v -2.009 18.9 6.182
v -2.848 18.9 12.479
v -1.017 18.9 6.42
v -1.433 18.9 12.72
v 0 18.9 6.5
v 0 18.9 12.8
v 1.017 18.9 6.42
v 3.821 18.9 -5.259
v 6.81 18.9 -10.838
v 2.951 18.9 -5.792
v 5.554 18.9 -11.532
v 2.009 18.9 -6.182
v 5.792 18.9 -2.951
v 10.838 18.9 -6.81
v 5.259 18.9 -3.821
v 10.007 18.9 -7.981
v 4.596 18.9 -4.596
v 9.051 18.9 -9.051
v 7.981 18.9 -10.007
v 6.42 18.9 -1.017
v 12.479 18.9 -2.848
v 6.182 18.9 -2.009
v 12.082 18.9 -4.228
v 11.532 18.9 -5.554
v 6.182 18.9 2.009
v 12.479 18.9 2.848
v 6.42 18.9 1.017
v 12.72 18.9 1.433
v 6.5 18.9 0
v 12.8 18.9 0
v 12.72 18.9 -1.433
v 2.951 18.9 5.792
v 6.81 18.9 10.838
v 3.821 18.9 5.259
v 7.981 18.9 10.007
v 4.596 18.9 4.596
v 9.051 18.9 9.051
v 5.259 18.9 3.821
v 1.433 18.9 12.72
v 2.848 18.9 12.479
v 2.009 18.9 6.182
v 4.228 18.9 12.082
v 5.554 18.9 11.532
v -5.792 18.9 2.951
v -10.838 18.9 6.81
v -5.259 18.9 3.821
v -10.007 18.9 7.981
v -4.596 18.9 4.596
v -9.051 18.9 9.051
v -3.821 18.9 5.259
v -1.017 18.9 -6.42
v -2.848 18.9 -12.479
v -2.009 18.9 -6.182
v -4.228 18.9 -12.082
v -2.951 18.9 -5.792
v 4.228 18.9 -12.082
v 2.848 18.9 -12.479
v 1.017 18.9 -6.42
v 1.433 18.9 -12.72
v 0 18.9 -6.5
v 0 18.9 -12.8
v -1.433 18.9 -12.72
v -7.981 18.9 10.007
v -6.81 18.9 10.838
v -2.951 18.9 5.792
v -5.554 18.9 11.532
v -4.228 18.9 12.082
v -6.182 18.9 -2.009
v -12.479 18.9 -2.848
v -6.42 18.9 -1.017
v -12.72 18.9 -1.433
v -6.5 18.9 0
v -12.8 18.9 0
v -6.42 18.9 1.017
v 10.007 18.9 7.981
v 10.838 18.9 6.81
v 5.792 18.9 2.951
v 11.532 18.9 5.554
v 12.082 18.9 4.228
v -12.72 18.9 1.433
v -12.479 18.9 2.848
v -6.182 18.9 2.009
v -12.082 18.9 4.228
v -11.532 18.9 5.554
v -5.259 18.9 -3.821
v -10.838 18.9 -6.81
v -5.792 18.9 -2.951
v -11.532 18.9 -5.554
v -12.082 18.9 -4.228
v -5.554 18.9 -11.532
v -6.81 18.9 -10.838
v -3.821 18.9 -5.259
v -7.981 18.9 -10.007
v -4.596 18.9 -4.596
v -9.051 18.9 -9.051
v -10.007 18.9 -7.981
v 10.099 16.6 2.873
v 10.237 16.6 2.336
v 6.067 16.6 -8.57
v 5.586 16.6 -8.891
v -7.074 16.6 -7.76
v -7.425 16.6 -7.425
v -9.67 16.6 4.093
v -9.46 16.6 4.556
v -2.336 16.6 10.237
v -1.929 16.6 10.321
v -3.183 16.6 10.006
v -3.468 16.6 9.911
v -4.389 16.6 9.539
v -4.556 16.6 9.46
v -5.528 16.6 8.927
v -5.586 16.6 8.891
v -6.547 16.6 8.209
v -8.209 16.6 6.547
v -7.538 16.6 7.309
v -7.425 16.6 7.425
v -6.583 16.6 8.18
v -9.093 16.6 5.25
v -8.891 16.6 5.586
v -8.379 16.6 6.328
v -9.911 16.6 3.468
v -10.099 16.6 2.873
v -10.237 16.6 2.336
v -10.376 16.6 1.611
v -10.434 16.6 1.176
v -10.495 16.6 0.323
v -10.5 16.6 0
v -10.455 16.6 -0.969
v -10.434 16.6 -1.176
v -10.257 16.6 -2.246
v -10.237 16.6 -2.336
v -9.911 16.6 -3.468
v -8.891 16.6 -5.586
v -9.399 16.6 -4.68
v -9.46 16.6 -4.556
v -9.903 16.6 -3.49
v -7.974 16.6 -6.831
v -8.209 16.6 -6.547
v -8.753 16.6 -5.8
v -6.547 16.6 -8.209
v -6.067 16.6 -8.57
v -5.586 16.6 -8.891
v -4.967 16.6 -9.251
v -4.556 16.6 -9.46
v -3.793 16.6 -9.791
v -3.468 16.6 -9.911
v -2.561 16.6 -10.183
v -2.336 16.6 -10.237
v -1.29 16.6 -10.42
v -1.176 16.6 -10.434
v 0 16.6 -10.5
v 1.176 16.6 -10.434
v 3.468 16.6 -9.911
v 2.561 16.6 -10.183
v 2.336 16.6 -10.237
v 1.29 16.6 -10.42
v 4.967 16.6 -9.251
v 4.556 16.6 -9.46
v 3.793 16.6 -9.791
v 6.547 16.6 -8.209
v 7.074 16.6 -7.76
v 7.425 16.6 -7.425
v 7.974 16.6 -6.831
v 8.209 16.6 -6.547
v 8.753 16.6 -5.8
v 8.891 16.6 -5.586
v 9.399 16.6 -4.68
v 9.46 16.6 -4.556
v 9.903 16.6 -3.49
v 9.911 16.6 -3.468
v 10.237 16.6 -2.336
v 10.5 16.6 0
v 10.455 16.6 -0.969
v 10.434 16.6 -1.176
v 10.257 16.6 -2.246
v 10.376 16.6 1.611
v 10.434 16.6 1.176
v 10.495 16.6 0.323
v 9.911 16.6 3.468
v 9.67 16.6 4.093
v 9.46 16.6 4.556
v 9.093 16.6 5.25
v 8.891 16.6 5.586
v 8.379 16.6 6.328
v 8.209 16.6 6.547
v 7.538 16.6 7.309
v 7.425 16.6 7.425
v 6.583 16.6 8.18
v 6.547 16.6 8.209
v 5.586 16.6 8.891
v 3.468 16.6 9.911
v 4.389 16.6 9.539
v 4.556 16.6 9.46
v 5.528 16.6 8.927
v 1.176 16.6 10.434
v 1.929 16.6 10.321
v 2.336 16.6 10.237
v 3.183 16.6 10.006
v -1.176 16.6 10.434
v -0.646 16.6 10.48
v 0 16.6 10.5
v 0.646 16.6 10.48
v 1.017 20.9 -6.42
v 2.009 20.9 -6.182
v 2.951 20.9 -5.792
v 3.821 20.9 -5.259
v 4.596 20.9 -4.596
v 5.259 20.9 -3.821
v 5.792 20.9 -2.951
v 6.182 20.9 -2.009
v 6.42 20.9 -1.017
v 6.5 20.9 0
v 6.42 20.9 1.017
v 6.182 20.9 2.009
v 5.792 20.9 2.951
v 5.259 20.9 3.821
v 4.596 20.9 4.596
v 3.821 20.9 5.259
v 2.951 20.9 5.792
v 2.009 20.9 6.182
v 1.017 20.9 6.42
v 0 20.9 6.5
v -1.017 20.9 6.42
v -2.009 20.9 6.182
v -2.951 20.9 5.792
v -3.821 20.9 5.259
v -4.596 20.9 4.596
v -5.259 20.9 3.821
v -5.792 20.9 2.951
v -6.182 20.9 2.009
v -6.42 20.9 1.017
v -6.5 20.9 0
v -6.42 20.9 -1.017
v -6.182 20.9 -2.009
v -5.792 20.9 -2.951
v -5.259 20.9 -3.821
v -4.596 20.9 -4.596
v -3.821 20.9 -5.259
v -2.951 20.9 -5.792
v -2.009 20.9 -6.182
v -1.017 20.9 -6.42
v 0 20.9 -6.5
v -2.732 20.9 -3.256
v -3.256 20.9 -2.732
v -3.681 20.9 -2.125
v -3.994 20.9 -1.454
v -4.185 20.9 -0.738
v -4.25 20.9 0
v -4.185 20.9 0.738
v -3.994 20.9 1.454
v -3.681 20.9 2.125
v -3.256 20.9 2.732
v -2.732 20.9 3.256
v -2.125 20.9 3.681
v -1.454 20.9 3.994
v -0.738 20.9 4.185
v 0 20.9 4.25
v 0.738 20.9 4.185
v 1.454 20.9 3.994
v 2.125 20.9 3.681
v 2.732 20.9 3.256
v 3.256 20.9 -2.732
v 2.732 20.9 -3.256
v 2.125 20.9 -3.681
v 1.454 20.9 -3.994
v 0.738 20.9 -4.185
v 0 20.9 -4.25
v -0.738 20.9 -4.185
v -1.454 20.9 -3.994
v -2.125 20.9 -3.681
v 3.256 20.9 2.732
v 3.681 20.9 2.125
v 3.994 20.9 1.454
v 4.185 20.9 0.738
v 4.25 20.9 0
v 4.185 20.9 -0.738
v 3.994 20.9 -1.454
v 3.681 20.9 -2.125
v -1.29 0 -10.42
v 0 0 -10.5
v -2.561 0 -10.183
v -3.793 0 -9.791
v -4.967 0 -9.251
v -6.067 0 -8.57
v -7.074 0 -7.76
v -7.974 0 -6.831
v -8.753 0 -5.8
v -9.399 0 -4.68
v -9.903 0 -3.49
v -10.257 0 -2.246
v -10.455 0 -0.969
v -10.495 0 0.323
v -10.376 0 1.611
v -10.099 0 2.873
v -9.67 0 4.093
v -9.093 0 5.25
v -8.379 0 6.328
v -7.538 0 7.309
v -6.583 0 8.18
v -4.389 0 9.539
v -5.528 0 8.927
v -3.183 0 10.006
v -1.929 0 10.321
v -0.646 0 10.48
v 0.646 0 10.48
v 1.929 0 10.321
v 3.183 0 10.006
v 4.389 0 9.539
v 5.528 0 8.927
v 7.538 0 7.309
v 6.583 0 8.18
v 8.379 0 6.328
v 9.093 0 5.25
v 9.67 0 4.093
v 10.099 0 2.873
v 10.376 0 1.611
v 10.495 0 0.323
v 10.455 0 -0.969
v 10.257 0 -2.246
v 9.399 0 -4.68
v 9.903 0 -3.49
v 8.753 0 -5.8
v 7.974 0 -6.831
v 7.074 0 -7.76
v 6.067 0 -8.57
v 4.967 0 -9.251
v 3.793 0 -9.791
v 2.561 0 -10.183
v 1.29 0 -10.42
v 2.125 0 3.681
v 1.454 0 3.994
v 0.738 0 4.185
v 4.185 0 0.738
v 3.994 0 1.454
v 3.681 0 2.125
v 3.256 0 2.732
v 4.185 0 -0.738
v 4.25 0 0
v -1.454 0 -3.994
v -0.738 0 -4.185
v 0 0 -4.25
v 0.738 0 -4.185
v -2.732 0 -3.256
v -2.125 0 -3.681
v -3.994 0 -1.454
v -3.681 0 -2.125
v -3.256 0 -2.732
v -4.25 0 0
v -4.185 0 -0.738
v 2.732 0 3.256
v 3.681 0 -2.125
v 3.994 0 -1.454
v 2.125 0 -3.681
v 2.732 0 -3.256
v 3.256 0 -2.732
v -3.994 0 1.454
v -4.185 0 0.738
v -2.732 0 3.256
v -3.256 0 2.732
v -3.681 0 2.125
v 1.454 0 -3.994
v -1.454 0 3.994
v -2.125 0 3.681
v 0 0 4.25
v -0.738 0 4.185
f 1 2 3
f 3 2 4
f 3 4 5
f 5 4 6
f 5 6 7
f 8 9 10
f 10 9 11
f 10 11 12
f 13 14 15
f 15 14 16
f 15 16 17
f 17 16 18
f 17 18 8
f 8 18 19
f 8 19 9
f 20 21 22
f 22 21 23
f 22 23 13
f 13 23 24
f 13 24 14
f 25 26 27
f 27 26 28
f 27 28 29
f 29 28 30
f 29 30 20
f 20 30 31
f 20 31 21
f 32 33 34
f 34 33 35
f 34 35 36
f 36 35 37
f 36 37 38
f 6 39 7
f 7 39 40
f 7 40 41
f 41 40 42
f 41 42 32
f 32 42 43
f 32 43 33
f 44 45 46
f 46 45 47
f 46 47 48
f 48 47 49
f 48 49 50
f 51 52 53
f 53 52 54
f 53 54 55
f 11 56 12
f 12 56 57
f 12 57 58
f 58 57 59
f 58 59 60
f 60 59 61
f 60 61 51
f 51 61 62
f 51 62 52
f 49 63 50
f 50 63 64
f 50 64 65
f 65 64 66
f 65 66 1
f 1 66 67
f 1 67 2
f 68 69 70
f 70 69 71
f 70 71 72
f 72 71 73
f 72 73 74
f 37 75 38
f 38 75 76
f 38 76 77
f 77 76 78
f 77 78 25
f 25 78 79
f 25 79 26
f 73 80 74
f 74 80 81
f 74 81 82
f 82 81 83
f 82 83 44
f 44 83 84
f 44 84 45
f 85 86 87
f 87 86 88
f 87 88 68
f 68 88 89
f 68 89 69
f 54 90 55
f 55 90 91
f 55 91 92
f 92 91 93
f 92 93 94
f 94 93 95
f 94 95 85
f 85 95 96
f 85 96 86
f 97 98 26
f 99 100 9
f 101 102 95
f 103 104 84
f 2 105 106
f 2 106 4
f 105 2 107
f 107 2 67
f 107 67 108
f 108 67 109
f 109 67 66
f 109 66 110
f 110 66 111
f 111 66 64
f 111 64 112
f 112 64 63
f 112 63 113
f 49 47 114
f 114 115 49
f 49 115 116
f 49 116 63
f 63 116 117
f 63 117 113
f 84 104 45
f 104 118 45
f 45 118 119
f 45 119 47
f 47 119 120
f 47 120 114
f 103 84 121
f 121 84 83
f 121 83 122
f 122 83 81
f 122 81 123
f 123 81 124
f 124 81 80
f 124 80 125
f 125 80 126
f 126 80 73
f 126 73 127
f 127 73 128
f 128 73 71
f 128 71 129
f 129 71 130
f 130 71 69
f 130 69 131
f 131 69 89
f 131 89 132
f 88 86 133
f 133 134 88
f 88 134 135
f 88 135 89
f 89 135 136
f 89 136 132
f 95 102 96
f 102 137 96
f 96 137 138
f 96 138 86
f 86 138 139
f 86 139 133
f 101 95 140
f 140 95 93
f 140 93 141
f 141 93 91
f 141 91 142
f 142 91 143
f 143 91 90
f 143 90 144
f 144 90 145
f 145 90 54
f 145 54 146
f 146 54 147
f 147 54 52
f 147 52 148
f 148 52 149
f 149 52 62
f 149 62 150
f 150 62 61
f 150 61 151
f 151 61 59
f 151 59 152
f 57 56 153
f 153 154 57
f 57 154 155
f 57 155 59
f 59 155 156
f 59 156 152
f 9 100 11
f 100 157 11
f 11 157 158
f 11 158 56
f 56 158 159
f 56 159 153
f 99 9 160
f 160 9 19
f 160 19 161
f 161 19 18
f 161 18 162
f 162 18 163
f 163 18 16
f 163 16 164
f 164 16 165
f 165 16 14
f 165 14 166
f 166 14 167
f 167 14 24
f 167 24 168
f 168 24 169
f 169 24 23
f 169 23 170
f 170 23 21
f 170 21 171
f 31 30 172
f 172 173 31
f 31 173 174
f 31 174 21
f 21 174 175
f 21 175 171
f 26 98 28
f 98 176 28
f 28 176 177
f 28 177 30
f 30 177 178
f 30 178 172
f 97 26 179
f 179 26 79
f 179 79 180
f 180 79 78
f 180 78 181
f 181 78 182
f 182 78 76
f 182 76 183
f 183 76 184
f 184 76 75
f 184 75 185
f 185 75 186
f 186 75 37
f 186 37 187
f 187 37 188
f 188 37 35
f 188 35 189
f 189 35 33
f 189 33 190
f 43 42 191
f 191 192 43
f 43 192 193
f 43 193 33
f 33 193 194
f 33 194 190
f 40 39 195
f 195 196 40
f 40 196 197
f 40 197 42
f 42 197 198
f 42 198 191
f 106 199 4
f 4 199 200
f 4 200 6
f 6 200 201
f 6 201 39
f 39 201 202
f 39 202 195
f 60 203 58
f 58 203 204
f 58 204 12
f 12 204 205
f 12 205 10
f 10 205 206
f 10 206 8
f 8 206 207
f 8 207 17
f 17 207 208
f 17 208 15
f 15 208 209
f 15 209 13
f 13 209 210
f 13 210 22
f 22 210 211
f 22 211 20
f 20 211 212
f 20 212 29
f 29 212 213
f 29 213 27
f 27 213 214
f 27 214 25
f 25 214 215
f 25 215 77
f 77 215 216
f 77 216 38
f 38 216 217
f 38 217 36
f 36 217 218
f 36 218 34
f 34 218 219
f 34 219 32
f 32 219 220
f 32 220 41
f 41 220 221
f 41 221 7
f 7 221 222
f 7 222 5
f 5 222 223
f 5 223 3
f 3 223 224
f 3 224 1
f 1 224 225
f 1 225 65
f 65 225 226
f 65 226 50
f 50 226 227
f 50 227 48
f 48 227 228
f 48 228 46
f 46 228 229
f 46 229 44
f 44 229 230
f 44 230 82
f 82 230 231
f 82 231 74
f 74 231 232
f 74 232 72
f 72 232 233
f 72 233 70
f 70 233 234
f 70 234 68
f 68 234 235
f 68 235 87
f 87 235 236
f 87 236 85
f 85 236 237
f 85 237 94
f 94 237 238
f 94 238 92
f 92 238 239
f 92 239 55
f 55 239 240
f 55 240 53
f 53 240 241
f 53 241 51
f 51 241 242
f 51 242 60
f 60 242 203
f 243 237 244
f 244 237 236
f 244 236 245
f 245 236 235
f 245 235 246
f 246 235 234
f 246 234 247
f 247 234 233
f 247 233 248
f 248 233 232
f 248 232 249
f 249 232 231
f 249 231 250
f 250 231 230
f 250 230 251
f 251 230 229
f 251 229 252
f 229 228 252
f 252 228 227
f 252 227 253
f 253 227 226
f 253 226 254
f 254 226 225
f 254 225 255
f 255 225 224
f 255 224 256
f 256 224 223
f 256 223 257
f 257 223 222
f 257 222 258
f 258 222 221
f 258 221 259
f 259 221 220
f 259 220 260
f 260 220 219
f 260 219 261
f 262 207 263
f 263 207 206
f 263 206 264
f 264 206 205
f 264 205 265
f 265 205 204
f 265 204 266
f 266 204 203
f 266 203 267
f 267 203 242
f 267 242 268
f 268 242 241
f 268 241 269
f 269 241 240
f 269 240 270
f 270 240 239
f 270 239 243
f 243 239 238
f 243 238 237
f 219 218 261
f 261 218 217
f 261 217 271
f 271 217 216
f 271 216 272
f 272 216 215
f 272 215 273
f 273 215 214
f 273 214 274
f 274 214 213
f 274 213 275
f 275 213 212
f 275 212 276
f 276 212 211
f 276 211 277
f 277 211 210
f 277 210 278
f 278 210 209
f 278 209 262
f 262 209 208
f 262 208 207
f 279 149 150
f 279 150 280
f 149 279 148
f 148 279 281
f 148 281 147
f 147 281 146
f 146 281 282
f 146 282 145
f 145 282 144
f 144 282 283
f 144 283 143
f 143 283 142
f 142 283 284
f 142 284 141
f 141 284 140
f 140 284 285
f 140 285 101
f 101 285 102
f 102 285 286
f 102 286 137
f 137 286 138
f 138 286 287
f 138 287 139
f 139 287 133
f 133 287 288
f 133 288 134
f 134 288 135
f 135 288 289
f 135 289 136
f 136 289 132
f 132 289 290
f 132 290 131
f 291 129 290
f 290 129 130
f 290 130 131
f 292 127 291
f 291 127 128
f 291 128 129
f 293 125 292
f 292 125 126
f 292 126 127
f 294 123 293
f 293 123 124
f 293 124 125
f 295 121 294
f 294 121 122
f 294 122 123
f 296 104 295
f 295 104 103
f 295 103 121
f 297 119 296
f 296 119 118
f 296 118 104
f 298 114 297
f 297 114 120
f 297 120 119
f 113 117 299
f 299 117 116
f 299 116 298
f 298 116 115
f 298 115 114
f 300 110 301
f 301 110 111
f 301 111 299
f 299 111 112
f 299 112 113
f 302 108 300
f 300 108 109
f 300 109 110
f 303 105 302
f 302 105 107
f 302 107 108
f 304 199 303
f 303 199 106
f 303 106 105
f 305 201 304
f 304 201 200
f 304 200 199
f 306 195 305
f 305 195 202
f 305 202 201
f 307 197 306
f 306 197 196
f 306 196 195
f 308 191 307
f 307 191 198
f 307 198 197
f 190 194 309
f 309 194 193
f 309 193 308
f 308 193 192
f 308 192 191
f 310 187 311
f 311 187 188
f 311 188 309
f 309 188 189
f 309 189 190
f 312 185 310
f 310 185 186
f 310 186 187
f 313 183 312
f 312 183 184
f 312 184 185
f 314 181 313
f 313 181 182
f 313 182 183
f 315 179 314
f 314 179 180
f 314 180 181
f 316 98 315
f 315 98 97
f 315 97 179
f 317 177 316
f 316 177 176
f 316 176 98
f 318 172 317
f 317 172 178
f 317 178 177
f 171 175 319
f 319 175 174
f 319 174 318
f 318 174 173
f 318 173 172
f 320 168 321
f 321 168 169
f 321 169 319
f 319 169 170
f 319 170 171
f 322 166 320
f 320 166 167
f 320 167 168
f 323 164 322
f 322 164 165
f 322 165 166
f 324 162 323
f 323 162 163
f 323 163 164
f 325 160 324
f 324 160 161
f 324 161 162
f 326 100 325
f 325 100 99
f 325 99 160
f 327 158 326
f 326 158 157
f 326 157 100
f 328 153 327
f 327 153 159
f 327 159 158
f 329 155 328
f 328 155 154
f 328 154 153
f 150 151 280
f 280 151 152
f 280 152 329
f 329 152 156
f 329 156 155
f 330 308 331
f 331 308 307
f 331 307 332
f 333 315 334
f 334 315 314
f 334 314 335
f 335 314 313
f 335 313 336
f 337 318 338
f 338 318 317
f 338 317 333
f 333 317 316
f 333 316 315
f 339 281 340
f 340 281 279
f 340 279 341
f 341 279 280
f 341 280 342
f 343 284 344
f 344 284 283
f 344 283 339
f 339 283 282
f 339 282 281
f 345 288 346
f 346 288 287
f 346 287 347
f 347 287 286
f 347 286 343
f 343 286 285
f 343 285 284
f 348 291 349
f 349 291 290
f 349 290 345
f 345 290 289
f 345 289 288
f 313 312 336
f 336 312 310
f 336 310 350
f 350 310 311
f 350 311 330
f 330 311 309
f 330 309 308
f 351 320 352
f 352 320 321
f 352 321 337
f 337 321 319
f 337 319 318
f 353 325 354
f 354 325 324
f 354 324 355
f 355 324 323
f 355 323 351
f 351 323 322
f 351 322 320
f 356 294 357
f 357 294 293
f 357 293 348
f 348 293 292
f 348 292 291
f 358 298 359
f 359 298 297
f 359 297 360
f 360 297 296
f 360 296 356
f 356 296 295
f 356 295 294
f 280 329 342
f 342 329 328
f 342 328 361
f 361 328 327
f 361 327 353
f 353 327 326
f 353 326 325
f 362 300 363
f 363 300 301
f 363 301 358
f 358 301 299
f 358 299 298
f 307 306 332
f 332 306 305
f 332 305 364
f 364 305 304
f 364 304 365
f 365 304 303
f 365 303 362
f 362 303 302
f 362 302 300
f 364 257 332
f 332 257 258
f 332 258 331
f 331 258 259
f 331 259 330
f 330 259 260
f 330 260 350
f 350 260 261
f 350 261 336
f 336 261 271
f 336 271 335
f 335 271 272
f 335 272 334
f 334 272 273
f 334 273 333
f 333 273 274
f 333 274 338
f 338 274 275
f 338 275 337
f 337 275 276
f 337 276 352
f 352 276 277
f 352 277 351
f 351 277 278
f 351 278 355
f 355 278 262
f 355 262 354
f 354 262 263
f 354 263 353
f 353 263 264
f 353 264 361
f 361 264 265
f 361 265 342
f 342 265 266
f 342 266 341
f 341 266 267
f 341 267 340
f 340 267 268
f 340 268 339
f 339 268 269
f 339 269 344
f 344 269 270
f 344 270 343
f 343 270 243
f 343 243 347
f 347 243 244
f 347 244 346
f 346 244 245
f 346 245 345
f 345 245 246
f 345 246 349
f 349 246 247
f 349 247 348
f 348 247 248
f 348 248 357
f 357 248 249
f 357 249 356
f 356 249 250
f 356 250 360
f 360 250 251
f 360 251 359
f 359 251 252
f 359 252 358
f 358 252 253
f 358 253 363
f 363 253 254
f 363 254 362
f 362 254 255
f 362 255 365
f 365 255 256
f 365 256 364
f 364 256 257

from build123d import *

# Parameters (mm, degrees)
SKETCH_1_R          = 9.4
EXTRUDE_1_DEPTH     = 15.5
SKETCH_3_R          = 6.5
EXTRUDE_2_DEPTH     = 2
SKETCH_5_R          = 10.5
EXTRUDE_4_DEPTH     = 17
SKETCH_4_R          = 4.25
CUT_EXTRUDE_1_DEPTH = 31


with BuildPart() as part:
    # 草图1 → 凸台-拉伸1 (new body)
    with BuildSketch(Plane(origin=(0, 0, 0), x_dir=(1, 0, 0), z_dir=(0, 1, 0))):
        with Locations(Location((0, 0, 0), (0, 0, 270))):
            Circle(SKETCH_1_R)
    extrude(amount=EXTRUDE_1_DEPTH)

    # 草图2 → 旋转1 (revolve)
    with BuildSketch(Plane.XY, mode=Mode.PRIVATE) as revolve_1_sk:
        Polygon((0, 18.9), (12.8, 18.9), (9.4, 15.5), (0, 15.5), align=None)
    revolve(revolve_1_sk.sketch.rotate(Axis((0, 15.5, 0), (0, 1, 0)), 270), axis=Axis((0, 15.5, 0), (0, 1, 0)))

    # 草图3 → 凸台-拉伸2 (add)
    with BuildSketch(Plane(origin=(0, 18.9, 0), x_dir=(1, 0, 0), z_dir=(0, 1, 0))):
        with Locations(Location((0, 0, 0), (0, 0, 270))):
            Circle(SKETCH_3_R)
    extrude(amount=EXTRUDE_2_DEPTH)

    # 草图5 → 凸台-拉伸4 (add)
    with BuildSketch(Plane.XZ):
        with Locations(Location((0, 0, 0), (0, 0, 270))):
            Circle(SKETCH_5_R)
    extrude(amount=-EXTRUDE_4_DEPTH)

    # 草图4 → 切除-拉伸1 (cut)
    with BuildSketch(Plane(origin=(0, 20.9, 0), x_dir=(1, 0, 0), z_dir=(0, 1, 0))):
        with Locations(Location((0, 0, 0), (0, 0, 270))):
            Circle(SKETCH_4_R)
    extrude(amount=-CUT_EXTRUDE_1_DEPTH, mode=Mode.SUBTRACT)


solid = part.part
